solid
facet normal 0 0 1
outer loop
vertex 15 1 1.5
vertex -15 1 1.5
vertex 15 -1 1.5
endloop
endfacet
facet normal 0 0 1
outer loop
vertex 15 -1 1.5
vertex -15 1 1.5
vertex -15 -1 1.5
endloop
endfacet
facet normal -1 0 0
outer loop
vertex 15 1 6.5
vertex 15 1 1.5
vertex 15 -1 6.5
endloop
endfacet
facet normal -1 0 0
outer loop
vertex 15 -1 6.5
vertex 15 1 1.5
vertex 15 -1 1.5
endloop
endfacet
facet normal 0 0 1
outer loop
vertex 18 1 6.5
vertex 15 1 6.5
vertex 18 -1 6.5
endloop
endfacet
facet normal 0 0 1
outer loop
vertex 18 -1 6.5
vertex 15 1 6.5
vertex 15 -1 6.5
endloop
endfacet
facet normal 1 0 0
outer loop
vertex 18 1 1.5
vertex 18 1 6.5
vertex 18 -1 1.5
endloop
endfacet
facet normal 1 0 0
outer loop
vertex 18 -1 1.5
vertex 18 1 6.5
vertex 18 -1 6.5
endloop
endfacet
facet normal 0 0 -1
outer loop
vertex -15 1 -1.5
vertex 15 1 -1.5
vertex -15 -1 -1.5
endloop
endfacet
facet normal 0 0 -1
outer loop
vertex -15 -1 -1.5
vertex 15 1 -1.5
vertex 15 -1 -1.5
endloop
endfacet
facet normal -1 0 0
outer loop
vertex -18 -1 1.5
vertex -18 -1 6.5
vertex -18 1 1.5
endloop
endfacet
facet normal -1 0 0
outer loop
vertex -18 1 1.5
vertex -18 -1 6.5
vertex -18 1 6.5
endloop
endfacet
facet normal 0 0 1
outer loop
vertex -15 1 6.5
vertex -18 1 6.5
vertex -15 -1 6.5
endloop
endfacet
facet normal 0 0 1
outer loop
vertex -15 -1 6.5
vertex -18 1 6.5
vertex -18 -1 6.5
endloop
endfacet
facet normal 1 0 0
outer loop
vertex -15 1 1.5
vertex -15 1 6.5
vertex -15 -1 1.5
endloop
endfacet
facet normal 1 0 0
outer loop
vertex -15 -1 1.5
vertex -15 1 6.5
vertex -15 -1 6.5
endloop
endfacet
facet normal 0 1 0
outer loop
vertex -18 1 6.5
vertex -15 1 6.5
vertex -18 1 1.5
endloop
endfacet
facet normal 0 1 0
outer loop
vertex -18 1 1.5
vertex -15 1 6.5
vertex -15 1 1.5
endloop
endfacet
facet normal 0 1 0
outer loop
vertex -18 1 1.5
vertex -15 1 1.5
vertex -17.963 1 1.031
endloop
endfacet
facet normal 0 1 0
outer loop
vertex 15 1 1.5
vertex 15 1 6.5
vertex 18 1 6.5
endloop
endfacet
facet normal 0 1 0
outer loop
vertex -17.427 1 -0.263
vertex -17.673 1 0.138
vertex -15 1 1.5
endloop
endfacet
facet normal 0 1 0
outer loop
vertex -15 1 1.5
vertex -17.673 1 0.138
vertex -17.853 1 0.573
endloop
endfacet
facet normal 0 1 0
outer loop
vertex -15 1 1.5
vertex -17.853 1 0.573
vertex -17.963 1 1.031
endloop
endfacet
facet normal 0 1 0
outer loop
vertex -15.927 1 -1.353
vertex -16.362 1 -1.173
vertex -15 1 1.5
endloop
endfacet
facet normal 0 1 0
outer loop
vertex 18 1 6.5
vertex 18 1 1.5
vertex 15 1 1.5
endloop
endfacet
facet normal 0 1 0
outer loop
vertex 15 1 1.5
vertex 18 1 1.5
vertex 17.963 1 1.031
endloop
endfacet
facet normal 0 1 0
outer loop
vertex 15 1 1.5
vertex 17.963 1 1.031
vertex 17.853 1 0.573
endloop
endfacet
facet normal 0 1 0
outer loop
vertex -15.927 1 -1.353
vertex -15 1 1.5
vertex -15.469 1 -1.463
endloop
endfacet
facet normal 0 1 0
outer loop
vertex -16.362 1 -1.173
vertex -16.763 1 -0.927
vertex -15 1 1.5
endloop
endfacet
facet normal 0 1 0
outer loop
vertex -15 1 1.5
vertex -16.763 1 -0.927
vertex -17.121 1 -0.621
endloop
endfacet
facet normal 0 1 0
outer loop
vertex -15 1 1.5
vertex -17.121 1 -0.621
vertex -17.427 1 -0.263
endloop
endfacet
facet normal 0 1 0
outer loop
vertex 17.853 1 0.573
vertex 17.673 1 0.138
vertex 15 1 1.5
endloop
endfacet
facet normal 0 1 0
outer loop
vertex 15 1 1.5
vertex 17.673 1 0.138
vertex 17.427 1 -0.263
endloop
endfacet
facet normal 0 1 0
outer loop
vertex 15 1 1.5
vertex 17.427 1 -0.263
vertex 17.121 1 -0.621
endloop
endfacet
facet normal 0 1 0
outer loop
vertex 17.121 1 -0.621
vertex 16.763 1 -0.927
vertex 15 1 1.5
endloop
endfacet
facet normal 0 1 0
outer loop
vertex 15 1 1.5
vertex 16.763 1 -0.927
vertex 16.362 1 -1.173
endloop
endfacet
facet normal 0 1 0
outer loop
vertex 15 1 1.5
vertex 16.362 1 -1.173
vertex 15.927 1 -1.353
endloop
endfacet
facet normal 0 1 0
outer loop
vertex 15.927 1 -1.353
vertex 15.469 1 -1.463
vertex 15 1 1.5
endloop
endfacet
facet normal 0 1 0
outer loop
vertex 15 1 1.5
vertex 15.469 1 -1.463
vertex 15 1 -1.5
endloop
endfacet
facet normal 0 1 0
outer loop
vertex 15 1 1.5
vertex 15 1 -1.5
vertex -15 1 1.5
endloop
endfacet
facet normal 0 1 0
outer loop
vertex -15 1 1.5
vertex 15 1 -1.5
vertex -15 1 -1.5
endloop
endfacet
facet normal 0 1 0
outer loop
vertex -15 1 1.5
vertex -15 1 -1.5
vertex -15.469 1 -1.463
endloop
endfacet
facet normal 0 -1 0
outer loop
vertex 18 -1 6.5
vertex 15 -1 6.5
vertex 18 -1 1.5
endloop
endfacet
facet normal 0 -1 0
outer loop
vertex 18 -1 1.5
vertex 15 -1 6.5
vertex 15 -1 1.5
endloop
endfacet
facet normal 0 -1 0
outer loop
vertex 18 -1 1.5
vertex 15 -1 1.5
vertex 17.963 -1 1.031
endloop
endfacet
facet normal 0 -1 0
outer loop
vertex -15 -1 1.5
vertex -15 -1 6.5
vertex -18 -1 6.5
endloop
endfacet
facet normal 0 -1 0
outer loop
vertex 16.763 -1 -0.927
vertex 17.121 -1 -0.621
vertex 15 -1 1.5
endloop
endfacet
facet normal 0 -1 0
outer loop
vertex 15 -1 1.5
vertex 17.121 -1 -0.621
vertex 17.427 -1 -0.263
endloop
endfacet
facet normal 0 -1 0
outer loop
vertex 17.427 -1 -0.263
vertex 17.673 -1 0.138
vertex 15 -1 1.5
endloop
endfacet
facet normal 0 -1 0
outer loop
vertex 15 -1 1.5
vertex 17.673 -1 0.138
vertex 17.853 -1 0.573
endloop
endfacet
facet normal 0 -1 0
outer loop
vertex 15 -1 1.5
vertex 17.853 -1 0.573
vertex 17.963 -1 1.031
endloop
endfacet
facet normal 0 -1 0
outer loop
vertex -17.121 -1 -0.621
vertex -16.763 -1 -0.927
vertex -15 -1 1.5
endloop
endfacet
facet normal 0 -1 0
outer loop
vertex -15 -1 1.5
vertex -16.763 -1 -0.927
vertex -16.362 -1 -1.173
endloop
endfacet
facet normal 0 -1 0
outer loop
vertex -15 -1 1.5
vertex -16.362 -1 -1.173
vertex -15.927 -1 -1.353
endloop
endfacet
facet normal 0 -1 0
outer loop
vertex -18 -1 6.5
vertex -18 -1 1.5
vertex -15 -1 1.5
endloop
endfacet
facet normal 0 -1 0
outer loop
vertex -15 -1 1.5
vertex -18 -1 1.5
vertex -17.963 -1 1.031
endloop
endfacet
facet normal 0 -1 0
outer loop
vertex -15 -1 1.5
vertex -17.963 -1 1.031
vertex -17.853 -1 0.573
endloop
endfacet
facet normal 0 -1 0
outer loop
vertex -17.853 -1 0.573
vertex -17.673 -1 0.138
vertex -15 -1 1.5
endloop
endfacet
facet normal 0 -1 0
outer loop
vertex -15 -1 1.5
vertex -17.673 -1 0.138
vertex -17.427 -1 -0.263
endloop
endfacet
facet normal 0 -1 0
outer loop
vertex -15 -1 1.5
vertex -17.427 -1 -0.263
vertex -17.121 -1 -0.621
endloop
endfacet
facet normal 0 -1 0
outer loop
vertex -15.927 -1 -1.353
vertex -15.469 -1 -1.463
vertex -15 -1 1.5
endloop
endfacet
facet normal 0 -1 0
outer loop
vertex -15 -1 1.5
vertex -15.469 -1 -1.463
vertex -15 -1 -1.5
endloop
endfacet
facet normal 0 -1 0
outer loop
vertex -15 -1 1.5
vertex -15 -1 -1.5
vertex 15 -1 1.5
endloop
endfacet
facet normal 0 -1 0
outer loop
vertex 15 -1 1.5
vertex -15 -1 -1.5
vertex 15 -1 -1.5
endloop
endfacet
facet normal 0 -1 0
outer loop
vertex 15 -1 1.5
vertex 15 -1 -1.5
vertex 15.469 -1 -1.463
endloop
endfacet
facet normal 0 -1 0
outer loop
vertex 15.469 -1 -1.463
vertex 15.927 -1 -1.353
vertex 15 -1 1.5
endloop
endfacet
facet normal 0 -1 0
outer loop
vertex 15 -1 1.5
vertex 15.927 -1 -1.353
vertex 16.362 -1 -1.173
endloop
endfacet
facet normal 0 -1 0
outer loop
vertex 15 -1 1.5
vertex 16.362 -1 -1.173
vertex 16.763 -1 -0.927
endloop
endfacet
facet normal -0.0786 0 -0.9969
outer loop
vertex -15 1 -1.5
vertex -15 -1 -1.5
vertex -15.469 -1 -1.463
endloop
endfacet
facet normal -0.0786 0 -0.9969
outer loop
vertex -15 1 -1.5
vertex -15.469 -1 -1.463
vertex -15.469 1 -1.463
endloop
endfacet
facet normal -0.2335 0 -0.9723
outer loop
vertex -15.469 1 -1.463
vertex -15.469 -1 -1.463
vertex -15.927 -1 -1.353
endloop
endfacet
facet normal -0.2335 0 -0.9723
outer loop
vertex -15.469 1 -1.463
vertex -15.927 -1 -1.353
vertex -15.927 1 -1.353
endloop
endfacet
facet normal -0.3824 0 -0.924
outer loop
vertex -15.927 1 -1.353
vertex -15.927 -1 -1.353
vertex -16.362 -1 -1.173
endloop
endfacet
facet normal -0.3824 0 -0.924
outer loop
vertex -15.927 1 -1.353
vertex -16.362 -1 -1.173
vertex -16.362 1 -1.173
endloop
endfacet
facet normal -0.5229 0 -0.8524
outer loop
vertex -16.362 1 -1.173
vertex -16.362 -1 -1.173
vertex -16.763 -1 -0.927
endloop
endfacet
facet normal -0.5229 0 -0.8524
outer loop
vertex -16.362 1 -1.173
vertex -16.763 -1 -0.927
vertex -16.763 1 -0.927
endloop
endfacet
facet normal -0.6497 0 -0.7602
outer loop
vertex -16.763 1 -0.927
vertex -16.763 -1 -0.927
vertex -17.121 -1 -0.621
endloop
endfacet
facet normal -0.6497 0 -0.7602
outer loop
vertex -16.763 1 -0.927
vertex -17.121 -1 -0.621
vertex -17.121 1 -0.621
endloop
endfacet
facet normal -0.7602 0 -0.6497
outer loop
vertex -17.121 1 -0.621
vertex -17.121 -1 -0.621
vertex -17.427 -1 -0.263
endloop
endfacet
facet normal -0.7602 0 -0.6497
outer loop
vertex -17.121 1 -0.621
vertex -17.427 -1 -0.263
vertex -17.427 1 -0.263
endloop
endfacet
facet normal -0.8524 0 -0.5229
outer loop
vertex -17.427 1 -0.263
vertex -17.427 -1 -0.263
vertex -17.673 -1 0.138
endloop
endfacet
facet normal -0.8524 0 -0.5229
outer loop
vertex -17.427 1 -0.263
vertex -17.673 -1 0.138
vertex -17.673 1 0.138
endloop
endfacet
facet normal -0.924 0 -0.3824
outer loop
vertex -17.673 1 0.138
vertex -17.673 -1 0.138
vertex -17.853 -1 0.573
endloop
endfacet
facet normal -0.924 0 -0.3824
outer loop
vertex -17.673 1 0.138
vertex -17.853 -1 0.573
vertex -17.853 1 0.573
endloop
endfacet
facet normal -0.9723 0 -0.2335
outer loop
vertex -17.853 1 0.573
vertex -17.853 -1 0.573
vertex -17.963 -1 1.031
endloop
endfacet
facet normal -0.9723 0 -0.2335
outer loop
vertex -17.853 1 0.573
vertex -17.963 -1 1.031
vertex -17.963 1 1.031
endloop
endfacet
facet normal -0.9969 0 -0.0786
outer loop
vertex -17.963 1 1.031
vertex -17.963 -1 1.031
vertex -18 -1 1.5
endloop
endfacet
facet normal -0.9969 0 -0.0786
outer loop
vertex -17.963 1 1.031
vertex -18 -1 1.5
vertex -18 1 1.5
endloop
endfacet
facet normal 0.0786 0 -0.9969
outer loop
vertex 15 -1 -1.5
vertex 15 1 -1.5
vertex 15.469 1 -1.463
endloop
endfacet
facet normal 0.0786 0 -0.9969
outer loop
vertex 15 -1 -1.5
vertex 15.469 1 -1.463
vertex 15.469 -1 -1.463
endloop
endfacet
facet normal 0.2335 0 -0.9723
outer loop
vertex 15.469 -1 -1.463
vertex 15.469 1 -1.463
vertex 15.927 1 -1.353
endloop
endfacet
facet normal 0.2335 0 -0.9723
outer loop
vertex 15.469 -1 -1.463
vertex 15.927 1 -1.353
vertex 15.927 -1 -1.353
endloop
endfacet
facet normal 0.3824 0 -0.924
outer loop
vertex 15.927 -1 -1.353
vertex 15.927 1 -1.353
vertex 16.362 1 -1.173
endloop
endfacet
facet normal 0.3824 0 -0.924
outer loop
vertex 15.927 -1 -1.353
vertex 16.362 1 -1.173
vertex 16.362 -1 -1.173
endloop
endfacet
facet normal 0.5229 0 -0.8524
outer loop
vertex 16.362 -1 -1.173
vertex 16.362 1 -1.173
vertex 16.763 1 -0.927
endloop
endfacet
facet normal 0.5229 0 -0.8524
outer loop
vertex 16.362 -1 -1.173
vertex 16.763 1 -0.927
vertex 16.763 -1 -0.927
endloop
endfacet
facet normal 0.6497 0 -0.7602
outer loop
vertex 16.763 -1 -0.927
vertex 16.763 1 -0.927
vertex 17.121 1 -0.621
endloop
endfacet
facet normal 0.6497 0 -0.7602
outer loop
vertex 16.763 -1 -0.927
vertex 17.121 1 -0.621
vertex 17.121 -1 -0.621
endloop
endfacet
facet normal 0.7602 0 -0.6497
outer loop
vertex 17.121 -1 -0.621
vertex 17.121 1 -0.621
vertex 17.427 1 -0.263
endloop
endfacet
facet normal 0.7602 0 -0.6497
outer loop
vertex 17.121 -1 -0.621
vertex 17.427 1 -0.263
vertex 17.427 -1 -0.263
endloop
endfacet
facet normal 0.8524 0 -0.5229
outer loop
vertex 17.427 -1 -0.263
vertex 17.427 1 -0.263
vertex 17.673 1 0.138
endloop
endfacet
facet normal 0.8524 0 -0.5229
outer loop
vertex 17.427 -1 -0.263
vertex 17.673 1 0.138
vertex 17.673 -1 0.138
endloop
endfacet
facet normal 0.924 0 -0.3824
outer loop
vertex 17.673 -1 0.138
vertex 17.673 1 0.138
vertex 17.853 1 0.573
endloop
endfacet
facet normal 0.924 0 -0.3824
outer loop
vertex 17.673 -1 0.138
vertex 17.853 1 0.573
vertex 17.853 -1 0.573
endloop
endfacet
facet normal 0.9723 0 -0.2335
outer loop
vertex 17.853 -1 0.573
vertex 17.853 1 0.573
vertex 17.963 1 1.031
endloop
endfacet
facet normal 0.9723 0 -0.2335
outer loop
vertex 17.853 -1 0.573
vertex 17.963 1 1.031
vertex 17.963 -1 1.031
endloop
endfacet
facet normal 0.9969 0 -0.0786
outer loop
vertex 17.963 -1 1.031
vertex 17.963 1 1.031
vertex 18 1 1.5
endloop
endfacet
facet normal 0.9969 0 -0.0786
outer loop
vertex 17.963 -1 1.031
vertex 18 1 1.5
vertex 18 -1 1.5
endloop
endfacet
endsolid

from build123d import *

# Parameters (mm, degrees)
SKETCH1_W           = 36
SKETCH1_H           = 3
SKETCH1_W_2         = 3
SKETCH1_H_2         = 5
BOSS_EXTRUDE1_DEPTH = 1
FILLET1_R           = 3


with BuildPart() as part:
    # Sketch1 → Boss-Extrude1 (new, symmetric)
    with BuildSketch(Plane(origin=(0, 0, 0), x_dir=(1, 0, 0), z_dir=(0, 1, 0))):
        Rectangle(SKETCH1_W, SKETCH1_H)
        with Locations((-16.5, -4)):
            Rectangle(SKETCH1_W_2, SKETCH1_H_2)
        with Locations((16.5, -4)):
            Rectangle(SKETCH1_W_2, SKETCH1_H_2)
    extrude(amount=BOSS_EXTRUDE1_DEPTH, both=True)

    # Fillet1
    fillet1_edges = [part.edges().sort_by_distance(p)[0] for p in [
        (-18, 0, -1.5),
        (18, 0, -1.5),
    ]]
    fillet(fillet1_edges, radius=FILLET1_R)


solid = part.part
